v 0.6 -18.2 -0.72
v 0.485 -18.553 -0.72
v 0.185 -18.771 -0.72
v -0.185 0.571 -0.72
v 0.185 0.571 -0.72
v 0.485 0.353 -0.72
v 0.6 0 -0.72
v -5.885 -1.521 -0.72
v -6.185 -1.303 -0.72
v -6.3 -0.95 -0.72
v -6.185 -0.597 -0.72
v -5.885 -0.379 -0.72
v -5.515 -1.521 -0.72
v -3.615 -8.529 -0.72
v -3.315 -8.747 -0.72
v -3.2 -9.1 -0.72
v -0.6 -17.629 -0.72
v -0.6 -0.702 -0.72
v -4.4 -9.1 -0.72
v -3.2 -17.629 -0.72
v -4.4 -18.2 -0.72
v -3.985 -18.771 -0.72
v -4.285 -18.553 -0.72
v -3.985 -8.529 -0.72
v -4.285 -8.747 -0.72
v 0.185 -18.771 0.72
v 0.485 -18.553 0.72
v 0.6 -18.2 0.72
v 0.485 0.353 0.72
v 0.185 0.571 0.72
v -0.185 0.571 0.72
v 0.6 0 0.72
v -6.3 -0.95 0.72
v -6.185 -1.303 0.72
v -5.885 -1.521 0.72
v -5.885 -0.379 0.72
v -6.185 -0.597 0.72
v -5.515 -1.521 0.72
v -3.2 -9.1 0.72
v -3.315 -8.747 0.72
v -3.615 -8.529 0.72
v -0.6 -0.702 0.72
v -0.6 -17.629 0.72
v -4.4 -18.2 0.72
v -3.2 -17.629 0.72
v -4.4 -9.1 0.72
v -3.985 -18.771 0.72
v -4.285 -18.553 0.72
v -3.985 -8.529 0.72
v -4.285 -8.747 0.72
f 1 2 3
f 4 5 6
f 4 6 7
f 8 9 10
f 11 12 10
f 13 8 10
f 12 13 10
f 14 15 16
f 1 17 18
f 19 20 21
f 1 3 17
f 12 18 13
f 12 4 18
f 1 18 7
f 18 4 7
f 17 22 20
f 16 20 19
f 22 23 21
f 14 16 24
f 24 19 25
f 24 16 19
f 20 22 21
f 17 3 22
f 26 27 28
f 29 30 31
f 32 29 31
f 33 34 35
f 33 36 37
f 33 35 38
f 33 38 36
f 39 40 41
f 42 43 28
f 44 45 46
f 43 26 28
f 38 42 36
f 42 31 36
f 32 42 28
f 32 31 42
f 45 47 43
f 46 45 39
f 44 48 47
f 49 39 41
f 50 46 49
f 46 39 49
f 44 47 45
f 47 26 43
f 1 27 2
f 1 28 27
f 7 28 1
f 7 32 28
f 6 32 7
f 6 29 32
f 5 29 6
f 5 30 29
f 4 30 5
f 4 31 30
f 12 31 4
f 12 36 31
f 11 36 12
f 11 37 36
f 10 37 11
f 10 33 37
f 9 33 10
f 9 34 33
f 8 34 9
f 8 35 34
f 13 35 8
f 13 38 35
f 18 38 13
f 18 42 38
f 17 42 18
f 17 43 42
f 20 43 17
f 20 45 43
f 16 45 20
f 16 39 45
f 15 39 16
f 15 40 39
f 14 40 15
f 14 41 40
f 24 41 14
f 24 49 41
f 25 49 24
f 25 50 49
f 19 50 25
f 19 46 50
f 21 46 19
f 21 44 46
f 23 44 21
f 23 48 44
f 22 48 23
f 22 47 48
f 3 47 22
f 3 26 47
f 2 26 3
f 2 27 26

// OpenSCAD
// file: ../../Libraries/hull.scad
// From: https://gist.github.com/hexagon5un/73e187dfa0404c69177795424f397ce6
module multiHull(){
	for (i = [1 : $children-1])
		hull(){
			children(0);
			children(i);
		}
}

module sequentialHull(){
	for (i = [0: $children-2])
		hull(){
			children(i);
			children(i+1);
		}
}

/* Extended fun hull functions */

module cylinders(points, diameter, thickness){
	for (p=points){
		translate(p) cylinder(d=diameter, h=thickness, center=true);
	}
}

// round bottom cylinders
module rb_cylinders(points, diameter, thickness){
     for (p=points){
          translate(p)
               union() {
               cylinder(d=diameter, h=thickness, center=true);
               translate([0, 0, -thickness/2])
                    sphere(d=diameter);
          }
     }
}

module plate(points, diameter, thickness, hole_diameter){
	difference(){
		hull() cylinders(points, diameter, thickness);
		cylinders(points, hole_diameter, 1000);
	}
}

module bar(length, width, thickness, hole_diameter){
	plate([[0,0,0], [length,0,0]], width, thickness, hole_diameter);
}

module rounded_box(points, radius, height){
	hull(){
		for (p = points){
			translate(p)
				cylinder(r=radius, h=height);
		}
	}
}

module point_cloud(points, radius=1, facets=8){
	for (p=points){
		translate(p)
			sphere(radius/cos(180/facets), $fn=facets);
		// polygon sphere circumscribed on radius
	}
}

module point_hull(points, radius=1, facets=8){
	hull(){
		point_cloud(points, radius, facets);
	}
}

// Shrink the exterior of the points so that the hull fits inside
function select(vector, i) = [ for (p=vector) p[i] ];
function axis_center(v, i) = (max(select(v, i)) - min(select(v,i)))/2;
function center(v) = [ for (i = [0,1,2]) axis_center(v, i) ];
function shrink_point(point, center, radius) = [ for (i = [0,1,2]) point[i] > center[i] ? point[i] - radius : point[i] + radius ];
function shrink(points, radius) = [ for (p = points) shrink_point(p, center(points), radius) ];

module interior_point_hull(points, radius=1){
	point_hull(shrink(points, radius), radius);
}

module interior_rounded_box(points, radius, height){
	rounded_box(shrink(points, radius), radius, height);
}


module mirror_copy(v = [1, 0, 0]) {
    children();
    mirror(v) children();
}
// main file
use <../../Libraries/hull.scad>;

$fa = 1; // minimum angle
$fs = 0.4; // minimum size
z_layer = 0.24; // layer thickness
z_plate = 14.6; // plate height without lid
z_plate_lid = 16.2; // plate height without lid
wall_plate = 2.3;
z_off = 2; // offset for lid

s_x = 1; // scale factors for main circle body
s_y = 0.8;

x_pts = 2.3+1.5;
y_pts = 16.2+2;
thick = 1.2;

pts = [
    [-x_pts*1.5,-x_pts/4],
    [0,0],
    [0, -y_pts],
    [-x_pts, -y_pts],
    [-x_pts, -y_pts/2]
];

    linear_extrude(z_layer*6, center = true)
    for (p = [0:3]) {
        hull() {
            translate(pts[p]) circle(d = thick, center = true);
            translate(pts[p+1]) circle(d = thick, center = true);
        }
    }

// sequentialHull(pts)
